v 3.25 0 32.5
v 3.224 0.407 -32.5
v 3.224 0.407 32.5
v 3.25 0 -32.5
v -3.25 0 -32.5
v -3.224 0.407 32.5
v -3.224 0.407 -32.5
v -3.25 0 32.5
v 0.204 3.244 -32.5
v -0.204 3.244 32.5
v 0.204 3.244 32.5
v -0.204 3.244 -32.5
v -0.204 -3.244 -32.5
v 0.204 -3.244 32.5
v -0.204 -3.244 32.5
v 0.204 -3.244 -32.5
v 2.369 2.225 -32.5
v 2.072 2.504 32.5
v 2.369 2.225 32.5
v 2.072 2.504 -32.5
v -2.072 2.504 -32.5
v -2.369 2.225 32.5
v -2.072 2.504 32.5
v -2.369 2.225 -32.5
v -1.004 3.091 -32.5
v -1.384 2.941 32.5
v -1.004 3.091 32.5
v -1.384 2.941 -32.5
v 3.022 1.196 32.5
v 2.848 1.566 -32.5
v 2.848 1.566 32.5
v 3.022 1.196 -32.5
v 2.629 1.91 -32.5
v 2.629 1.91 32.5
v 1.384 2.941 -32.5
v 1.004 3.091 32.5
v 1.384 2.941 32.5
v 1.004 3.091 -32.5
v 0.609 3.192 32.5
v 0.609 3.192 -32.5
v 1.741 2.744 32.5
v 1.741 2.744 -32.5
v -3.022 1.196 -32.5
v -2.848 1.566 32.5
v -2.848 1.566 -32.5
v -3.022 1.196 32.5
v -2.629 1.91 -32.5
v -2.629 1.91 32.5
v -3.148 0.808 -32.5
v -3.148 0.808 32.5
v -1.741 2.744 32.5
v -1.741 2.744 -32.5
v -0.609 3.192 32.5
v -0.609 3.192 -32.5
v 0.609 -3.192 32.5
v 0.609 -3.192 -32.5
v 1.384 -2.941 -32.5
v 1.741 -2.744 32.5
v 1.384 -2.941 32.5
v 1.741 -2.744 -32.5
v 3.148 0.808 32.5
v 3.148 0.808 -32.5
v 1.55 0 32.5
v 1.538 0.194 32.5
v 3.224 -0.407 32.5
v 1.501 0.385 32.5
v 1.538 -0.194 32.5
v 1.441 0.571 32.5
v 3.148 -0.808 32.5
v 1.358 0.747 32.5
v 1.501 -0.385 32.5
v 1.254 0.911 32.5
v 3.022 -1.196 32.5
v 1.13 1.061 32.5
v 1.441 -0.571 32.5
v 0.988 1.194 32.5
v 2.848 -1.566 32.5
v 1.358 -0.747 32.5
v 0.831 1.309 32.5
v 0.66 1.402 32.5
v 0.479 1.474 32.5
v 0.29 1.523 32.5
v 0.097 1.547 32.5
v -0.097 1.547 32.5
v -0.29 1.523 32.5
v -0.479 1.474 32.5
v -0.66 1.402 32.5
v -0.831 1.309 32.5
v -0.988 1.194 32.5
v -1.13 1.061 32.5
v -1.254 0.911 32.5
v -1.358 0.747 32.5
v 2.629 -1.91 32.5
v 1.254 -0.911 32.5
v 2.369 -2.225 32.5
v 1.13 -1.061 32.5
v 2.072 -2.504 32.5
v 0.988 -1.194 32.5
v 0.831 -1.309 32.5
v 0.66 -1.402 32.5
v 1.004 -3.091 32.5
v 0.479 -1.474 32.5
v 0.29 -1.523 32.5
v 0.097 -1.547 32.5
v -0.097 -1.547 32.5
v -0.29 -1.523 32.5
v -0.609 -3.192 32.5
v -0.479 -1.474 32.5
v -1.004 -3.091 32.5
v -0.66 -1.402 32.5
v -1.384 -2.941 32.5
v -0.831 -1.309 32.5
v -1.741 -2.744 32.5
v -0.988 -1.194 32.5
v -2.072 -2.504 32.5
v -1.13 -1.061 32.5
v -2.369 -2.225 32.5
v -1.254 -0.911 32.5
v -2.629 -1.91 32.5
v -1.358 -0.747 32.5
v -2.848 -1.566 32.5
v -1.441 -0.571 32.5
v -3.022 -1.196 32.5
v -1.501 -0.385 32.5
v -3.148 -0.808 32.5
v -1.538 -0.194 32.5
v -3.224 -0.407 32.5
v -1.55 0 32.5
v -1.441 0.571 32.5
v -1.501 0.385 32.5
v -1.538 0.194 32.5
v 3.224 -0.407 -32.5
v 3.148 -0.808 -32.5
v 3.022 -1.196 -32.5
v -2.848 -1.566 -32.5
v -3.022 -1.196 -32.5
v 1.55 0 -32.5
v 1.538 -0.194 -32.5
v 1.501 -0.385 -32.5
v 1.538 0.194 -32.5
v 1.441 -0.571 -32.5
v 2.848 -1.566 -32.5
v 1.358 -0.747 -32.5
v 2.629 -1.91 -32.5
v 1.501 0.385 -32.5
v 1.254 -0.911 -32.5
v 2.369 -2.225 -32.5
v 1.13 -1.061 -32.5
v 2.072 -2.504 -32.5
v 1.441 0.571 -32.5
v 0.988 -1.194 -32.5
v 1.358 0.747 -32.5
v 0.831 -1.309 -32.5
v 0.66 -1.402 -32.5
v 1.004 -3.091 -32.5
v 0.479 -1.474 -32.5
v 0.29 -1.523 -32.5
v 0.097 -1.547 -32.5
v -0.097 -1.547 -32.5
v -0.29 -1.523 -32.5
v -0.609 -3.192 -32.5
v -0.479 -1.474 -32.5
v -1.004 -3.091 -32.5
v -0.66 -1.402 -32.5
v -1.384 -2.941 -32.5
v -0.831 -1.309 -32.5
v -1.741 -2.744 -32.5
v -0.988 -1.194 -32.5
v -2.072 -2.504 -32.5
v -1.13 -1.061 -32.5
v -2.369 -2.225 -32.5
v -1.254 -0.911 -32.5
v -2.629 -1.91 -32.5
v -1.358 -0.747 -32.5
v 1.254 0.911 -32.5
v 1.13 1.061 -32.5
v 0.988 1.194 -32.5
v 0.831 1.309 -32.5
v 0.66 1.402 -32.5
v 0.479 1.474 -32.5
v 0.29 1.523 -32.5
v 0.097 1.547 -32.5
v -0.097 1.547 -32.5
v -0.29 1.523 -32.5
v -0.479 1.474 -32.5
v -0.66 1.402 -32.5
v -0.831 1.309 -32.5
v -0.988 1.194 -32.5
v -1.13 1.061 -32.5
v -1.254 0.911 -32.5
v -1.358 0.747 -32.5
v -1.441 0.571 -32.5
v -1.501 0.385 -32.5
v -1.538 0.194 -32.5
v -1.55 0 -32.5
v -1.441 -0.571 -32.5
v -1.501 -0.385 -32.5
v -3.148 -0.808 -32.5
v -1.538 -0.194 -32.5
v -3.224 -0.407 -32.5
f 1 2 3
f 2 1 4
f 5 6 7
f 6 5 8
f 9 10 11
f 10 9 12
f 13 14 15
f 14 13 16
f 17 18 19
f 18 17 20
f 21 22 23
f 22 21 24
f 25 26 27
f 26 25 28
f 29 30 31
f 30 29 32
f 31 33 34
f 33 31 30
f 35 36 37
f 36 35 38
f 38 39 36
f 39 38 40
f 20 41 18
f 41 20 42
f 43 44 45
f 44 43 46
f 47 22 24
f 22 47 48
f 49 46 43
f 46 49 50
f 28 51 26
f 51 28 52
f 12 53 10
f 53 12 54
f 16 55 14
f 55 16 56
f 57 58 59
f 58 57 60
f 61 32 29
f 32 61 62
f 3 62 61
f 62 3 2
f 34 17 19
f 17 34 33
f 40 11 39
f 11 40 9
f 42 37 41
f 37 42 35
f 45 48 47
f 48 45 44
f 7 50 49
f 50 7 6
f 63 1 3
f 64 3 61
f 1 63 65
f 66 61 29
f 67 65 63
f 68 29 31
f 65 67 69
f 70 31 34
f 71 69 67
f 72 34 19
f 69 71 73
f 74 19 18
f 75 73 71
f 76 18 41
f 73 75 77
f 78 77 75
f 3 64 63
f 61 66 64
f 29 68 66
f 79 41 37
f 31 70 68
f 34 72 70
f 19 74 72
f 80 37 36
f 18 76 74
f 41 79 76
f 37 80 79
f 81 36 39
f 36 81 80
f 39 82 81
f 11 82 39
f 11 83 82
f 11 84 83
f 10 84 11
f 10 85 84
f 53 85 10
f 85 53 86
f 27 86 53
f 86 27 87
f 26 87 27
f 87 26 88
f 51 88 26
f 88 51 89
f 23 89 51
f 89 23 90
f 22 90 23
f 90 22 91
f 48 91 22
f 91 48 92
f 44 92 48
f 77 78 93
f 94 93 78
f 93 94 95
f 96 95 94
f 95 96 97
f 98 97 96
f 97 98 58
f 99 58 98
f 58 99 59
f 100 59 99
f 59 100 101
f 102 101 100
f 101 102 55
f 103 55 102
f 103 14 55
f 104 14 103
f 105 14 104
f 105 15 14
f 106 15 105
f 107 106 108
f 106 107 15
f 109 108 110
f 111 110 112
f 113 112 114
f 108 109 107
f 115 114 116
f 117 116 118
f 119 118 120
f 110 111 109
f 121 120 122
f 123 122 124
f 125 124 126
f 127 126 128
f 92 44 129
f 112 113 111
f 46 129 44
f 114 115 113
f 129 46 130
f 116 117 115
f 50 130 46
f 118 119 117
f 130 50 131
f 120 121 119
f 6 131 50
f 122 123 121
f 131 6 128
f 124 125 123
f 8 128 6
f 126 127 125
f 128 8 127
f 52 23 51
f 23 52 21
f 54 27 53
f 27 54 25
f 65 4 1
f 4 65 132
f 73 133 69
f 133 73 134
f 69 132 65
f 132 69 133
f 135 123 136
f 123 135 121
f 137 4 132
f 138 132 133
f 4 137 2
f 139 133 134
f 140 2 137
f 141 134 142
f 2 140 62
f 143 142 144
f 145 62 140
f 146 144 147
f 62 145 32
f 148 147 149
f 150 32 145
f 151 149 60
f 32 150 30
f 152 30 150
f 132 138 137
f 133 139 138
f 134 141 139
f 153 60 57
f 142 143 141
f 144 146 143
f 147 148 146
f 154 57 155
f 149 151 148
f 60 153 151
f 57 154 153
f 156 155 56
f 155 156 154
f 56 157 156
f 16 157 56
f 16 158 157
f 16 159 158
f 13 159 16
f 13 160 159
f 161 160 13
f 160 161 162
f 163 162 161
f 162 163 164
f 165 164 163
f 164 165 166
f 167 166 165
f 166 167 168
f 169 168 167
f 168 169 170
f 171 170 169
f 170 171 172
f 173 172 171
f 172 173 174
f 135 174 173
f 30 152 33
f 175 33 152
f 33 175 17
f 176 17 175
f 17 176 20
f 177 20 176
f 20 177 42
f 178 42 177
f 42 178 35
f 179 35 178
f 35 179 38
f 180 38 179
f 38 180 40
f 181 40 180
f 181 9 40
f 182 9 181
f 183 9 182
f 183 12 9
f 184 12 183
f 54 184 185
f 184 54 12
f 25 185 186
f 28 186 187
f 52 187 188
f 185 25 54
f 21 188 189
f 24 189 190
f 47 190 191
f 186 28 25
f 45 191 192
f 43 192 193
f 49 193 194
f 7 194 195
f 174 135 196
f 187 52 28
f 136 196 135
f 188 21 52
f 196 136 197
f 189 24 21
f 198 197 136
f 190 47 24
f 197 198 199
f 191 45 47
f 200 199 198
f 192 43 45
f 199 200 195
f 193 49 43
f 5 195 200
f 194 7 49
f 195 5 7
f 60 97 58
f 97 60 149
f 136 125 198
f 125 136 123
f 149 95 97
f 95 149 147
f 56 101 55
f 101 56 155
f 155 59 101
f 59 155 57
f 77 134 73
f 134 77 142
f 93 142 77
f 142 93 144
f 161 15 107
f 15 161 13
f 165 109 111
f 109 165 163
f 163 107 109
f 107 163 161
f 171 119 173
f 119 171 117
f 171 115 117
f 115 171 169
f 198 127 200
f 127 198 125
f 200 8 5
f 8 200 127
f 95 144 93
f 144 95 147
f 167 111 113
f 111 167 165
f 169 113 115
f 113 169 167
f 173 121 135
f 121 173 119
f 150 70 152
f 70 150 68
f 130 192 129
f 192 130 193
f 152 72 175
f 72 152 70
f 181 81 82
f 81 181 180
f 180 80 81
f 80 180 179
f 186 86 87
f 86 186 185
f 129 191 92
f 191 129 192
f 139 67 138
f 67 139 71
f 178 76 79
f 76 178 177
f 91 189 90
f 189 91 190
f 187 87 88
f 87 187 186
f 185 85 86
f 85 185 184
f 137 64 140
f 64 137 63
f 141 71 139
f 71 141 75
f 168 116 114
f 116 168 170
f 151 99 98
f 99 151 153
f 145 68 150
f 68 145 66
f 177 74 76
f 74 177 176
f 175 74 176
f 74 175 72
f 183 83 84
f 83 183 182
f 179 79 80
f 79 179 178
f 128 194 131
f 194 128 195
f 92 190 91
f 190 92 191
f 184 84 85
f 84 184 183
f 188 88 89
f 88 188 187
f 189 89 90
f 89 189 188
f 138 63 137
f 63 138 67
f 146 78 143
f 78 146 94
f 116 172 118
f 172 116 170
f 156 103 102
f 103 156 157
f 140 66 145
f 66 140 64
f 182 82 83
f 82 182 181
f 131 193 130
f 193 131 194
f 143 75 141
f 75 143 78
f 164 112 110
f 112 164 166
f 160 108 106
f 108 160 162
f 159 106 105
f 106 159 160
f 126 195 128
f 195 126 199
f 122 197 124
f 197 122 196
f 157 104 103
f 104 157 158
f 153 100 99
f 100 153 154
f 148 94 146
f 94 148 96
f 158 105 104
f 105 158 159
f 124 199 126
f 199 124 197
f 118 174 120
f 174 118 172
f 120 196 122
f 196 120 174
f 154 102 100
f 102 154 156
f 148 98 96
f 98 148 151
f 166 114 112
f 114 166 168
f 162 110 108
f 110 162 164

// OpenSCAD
$fn = 50;


difference() {
	union() {
		translate(v = [0, 0, -32.5000000000]) {
			cylinder(h = 65, r = 3.2500000000);
		}
	}
	union() {
		translate(v = [0, 0, -100.0000000000]) {
			cylinder(h = 200, r = 1.5500000000);
		}
	}
}
